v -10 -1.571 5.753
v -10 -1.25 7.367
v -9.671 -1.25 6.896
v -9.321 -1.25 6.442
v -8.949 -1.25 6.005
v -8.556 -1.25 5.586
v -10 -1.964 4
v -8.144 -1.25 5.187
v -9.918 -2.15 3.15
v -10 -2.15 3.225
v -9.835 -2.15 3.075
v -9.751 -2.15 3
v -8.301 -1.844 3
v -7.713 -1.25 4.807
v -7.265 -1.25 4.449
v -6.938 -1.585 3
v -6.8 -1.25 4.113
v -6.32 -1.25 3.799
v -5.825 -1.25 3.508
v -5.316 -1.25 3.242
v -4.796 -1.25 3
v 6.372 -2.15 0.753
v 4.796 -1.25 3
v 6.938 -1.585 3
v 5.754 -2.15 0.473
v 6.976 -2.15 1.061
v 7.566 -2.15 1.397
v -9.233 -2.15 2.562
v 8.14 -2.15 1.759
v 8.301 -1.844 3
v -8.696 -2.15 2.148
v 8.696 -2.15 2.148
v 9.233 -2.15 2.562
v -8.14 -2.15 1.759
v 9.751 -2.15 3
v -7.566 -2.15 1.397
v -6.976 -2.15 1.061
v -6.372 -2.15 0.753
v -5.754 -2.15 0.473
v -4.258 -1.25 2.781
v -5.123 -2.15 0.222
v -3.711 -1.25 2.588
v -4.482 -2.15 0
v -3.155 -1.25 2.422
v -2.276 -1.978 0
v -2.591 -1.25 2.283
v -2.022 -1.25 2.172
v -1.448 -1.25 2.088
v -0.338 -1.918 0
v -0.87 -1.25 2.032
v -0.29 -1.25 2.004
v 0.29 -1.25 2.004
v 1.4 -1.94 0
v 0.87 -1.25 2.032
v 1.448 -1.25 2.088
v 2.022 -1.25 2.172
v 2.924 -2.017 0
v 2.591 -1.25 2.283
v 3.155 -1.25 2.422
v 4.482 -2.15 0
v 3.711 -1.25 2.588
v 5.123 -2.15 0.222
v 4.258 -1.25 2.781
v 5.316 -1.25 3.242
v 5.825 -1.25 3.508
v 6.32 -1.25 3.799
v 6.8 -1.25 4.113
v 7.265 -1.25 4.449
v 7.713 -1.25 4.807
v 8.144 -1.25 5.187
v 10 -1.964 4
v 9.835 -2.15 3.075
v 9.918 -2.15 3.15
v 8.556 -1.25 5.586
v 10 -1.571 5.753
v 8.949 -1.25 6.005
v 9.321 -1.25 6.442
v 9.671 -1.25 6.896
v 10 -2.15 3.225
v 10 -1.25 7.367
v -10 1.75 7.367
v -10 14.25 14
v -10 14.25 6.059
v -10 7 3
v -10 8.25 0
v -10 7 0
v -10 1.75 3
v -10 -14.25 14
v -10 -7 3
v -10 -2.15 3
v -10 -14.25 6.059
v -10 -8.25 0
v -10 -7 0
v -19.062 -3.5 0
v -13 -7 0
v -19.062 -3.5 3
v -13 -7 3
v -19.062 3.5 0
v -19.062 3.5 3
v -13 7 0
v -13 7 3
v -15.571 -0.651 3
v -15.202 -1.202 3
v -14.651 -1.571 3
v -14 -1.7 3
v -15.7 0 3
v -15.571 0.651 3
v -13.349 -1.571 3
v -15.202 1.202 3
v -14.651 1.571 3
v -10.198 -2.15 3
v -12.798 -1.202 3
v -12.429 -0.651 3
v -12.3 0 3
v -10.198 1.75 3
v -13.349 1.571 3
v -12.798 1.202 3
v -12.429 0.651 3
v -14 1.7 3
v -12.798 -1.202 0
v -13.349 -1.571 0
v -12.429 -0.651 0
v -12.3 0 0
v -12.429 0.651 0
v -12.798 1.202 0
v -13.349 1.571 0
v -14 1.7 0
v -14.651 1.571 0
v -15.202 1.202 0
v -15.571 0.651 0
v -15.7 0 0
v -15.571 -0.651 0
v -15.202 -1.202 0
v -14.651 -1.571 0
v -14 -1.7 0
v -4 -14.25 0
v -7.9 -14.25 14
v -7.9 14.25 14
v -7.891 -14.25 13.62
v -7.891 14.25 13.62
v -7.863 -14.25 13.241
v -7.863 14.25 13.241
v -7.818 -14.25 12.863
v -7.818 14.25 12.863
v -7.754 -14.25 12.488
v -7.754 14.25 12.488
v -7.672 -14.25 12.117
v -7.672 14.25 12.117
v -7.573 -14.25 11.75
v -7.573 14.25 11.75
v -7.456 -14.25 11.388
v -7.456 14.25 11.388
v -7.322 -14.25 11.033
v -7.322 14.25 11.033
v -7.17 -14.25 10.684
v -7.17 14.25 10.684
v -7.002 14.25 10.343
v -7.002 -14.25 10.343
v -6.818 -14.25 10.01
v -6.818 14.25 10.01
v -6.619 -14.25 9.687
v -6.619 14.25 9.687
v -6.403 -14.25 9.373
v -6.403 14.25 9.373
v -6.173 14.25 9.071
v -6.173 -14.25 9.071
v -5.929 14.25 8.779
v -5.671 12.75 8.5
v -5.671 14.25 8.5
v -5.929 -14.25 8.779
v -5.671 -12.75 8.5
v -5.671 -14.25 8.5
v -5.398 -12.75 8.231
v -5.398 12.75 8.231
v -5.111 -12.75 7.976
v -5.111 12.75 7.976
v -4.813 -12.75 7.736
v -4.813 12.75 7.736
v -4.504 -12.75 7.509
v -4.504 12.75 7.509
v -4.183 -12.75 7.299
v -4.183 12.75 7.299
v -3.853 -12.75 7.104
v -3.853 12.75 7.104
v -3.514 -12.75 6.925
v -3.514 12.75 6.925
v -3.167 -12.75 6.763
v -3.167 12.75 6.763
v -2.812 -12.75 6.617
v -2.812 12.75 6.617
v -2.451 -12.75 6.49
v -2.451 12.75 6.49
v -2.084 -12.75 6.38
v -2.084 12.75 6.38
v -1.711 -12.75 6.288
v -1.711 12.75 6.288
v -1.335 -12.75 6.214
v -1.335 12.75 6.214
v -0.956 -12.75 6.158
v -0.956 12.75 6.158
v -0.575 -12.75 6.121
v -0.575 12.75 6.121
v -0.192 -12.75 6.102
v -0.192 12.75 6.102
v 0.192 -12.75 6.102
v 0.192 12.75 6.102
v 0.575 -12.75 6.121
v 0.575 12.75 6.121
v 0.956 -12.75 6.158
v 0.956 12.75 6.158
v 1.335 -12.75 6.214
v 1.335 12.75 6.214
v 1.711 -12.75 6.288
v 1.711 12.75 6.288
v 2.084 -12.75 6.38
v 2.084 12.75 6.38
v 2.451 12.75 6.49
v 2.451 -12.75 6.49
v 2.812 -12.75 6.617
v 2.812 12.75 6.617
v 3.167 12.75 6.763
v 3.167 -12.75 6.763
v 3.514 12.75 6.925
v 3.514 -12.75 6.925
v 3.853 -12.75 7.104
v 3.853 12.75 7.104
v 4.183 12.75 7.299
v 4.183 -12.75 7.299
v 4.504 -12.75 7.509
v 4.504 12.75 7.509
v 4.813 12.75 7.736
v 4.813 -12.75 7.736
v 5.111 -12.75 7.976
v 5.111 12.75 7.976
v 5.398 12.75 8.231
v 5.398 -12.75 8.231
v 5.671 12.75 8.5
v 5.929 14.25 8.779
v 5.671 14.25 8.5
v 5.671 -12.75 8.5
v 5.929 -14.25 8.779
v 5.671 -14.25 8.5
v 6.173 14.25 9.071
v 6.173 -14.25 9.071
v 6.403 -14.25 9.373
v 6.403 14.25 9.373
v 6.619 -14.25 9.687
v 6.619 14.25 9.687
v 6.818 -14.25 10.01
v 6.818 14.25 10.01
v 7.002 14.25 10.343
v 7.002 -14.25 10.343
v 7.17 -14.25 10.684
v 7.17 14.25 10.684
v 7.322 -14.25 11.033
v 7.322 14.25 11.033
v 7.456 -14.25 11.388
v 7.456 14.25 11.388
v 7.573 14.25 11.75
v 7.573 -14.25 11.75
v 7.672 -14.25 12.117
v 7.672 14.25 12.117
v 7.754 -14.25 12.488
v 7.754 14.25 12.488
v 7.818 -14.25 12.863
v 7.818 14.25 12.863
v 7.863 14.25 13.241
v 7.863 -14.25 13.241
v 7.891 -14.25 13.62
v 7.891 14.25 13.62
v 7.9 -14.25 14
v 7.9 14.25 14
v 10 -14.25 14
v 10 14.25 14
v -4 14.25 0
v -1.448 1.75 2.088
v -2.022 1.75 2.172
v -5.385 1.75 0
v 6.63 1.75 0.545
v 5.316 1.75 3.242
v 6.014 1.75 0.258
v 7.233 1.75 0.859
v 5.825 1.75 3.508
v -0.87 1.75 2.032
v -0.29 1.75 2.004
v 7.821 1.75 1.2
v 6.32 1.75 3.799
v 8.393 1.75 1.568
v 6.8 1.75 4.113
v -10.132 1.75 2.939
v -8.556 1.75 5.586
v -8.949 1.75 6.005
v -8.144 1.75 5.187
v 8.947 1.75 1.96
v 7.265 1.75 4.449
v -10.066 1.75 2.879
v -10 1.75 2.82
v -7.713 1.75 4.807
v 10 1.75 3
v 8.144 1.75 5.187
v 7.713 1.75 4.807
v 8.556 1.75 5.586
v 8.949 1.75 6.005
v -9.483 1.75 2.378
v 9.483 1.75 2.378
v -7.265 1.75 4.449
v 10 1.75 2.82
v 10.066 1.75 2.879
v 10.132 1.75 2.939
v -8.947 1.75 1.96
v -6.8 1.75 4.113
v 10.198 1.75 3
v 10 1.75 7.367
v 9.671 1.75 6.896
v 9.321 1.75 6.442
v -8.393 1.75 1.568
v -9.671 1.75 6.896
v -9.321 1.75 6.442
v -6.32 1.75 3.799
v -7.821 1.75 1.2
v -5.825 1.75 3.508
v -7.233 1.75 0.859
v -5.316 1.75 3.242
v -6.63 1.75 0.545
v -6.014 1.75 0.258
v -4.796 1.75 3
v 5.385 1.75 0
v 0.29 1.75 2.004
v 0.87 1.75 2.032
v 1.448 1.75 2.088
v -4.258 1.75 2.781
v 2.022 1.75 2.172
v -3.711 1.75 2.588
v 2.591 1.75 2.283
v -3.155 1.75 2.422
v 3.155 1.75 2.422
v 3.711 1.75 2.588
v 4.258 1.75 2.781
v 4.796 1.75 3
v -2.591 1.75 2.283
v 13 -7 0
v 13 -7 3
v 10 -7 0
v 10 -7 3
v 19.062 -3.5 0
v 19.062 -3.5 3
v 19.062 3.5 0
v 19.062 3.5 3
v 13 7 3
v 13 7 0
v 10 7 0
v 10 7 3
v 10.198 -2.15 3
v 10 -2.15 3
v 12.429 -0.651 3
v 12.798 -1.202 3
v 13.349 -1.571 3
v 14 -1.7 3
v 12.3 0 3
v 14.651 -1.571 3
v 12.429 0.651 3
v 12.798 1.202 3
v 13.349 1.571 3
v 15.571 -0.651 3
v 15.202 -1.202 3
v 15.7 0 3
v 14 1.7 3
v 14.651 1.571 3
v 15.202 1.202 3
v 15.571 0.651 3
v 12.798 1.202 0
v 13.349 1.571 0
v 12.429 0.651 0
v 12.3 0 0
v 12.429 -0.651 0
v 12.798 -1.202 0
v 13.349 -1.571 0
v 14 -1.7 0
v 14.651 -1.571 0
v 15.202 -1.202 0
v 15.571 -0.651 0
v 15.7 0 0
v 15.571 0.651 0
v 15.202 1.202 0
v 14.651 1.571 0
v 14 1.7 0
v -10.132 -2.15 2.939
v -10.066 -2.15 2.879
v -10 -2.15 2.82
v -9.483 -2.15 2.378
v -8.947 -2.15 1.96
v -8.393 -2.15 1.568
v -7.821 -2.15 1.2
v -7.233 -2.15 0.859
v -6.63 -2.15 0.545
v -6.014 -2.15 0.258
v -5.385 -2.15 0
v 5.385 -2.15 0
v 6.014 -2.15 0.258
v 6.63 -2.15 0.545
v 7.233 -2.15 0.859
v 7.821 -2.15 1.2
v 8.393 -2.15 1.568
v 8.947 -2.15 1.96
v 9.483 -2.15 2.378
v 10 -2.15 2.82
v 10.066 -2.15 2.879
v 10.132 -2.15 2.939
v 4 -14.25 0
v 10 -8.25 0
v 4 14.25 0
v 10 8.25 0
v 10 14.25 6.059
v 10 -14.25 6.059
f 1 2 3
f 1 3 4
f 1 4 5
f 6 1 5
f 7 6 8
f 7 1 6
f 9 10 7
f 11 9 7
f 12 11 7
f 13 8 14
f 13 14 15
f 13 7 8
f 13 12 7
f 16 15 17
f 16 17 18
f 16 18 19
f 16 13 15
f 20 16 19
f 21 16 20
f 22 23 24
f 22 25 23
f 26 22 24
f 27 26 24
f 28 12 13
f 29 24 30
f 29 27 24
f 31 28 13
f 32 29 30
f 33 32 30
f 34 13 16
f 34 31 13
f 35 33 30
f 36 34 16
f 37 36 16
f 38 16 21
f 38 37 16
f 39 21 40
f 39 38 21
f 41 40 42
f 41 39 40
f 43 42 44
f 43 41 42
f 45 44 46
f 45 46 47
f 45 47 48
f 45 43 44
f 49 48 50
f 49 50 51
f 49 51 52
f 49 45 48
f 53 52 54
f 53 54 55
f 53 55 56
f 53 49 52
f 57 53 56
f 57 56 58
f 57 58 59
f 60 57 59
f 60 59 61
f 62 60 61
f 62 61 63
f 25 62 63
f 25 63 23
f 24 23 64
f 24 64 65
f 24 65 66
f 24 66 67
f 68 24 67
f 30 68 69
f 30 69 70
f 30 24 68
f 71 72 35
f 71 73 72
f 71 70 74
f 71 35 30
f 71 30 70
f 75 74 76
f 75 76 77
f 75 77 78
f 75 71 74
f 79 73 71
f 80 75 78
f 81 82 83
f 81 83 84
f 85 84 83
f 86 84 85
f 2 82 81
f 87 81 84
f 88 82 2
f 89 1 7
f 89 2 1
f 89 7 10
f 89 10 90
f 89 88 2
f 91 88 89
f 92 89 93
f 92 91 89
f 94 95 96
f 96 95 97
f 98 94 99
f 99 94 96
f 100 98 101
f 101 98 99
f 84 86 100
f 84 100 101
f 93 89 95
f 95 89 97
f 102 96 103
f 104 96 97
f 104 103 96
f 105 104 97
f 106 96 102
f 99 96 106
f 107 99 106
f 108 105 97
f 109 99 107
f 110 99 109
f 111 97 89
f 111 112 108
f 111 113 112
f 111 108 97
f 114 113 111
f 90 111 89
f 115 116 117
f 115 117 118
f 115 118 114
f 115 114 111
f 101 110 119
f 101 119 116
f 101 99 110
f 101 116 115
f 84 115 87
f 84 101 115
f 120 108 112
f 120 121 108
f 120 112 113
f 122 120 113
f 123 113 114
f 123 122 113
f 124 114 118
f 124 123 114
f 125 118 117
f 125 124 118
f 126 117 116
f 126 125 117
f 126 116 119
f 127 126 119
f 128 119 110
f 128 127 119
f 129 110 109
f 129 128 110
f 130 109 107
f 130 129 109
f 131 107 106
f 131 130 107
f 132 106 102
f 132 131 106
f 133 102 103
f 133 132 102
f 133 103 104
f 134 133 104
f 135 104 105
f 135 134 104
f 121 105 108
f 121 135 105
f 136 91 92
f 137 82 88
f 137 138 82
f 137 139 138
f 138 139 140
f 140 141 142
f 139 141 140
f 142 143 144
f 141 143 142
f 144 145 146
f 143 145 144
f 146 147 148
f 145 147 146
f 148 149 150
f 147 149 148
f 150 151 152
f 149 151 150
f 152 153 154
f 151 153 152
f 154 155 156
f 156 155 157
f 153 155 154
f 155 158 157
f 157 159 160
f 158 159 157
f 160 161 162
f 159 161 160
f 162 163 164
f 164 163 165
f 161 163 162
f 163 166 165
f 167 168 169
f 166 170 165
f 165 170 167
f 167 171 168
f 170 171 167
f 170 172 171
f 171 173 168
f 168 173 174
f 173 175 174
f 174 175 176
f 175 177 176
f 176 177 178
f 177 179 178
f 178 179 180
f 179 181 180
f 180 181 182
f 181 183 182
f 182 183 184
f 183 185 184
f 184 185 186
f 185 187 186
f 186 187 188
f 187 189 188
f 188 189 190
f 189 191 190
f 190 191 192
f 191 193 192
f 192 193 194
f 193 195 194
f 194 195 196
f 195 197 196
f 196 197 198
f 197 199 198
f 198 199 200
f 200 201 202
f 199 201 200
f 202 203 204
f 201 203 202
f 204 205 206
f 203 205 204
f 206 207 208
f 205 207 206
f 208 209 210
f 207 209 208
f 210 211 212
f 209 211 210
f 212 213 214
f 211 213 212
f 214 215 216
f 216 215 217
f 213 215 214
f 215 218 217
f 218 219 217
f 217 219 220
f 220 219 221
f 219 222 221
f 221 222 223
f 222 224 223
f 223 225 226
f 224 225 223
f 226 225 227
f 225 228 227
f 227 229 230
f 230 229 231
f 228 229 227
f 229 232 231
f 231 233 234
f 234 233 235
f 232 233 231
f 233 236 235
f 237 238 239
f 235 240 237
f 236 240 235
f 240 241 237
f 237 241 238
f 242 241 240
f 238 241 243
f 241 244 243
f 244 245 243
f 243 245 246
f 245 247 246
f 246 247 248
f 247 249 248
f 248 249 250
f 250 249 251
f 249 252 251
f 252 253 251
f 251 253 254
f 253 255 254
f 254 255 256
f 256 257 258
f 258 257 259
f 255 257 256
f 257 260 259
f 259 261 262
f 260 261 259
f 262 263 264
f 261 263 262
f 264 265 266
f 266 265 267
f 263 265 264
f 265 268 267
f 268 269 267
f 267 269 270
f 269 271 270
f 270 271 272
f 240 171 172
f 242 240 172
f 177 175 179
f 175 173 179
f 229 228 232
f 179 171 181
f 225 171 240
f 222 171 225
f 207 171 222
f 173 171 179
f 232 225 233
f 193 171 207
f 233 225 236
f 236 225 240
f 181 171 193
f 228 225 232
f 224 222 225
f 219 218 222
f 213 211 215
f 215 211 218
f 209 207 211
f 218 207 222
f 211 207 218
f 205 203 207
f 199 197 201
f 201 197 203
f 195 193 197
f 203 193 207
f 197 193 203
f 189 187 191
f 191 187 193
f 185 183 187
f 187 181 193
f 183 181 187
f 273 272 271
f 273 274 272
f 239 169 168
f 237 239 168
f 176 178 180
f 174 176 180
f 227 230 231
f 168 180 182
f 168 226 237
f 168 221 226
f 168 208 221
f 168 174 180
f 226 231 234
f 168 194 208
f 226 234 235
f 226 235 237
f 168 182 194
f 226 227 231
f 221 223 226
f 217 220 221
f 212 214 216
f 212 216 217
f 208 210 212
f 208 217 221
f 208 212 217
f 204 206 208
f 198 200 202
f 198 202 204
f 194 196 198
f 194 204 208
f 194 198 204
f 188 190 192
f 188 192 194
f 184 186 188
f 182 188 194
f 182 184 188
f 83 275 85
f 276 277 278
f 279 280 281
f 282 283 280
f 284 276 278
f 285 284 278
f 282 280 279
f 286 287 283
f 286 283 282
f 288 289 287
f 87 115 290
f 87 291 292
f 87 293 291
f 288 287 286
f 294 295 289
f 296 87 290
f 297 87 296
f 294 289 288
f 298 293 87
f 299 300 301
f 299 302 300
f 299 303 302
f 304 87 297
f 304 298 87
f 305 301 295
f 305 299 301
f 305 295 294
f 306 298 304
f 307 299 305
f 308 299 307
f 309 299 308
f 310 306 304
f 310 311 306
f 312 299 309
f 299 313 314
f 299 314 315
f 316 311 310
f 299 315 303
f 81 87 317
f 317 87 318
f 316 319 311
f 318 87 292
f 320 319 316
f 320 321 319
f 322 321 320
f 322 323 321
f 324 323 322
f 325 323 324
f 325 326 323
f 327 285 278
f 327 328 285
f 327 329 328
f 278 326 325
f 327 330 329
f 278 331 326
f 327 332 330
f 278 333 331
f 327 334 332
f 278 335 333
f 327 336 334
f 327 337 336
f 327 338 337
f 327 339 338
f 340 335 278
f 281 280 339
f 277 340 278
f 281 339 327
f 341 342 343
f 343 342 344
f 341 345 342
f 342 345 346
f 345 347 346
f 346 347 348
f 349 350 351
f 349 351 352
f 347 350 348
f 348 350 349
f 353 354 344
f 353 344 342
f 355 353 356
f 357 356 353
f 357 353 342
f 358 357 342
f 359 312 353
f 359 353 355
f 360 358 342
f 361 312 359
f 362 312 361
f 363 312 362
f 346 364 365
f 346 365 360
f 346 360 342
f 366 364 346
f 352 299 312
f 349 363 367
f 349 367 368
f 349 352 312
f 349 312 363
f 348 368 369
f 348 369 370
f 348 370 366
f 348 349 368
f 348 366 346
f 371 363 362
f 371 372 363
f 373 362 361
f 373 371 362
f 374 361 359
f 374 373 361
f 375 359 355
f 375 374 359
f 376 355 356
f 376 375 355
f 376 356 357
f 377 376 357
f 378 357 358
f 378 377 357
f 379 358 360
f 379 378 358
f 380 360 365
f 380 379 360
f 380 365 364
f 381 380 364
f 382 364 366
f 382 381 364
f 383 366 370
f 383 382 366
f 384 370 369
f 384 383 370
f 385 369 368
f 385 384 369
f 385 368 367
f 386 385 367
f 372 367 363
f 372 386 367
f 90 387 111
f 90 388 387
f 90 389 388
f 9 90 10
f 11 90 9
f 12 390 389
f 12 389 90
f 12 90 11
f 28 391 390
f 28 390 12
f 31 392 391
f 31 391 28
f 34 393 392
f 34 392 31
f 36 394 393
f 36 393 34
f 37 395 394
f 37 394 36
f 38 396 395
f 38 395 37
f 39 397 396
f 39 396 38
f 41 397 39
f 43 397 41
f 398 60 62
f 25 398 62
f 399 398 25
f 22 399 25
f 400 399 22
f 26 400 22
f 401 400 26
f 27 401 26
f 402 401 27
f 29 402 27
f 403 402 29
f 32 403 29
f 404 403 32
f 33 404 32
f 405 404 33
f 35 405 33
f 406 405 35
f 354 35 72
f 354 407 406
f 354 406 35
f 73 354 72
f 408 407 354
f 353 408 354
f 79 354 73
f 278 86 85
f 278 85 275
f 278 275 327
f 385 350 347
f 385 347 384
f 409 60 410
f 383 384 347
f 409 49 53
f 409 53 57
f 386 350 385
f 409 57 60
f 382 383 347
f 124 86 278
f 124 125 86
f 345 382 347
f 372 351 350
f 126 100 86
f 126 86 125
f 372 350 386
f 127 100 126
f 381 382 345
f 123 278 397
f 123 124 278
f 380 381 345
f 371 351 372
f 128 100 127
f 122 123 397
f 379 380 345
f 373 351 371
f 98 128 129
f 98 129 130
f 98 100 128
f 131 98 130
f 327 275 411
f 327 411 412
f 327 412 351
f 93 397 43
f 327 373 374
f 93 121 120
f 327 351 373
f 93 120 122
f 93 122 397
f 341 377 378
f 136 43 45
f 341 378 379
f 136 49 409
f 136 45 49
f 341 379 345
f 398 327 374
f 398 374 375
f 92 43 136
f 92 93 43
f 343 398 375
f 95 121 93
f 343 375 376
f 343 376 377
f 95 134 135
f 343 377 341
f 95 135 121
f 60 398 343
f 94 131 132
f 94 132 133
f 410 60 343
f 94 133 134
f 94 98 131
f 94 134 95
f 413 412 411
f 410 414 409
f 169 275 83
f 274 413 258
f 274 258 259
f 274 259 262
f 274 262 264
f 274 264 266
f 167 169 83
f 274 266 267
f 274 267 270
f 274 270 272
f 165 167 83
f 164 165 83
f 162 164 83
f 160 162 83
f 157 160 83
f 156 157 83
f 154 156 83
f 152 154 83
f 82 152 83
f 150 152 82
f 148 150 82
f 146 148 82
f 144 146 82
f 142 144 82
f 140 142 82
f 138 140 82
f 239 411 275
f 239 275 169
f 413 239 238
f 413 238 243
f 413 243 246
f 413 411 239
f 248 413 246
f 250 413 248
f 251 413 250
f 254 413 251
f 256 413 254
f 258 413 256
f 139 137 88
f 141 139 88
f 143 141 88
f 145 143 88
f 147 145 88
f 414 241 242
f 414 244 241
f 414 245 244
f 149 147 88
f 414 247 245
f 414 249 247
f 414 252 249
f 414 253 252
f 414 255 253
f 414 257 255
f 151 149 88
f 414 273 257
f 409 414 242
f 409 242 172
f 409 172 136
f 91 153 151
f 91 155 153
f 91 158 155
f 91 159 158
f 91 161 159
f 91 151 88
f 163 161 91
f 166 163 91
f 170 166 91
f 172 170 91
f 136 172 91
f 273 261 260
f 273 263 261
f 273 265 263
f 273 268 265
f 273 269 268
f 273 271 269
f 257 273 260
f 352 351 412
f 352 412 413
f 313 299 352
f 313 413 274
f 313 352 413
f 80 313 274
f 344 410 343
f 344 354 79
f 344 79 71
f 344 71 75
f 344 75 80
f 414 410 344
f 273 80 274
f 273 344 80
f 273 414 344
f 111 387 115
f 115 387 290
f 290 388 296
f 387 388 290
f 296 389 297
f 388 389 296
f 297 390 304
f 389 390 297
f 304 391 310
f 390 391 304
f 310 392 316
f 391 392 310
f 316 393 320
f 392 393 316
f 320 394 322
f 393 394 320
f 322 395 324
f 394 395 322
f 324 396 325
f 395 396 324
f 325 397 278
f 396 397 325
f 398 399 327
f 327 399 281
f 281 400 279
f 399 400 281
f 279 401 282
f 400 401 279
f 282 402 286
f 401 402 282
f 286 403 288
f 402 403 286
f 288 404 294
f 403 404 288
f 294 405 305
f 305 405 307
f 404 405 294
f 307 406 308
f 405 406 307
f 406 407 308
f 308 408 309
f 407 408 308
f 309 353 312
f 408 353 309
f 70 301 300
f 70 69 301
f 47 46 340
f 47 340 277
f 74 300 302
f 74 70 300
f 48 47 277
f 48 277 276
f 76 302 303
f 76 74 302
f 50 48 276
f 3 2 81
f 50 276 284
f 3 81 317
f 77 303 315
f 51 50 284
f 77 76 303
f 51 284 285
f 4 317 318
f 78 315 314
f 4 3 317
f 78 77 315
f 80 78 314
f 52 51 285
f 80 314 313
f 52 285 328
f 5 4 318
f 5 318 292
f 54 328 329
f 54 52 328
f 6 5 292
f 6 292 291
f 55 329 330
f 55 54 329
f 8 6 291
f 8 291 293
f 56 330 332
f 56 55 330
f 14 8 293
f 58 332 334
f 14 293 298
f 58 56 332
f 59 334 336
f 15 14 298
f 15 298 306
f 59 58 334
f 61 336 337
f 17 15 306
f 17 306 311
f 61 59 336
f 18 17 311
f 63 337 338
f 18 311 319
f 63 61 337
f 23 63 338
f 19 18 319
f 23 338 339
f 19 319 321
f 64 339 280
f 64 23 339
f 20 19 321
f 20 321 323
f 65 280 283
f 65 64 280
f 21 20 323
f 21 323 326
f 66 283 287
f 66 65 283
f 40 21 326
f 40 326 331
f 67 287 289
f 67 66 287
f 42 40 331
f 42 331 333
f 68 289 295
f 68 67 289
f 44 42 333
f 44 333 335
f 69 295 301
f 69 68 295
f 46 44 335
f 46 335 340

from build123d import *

# Parameters (mm, degrees)
CUBE006_W                    = 20
CUBE006_H                    = 10
CUBE006_DEPTH                = 20
CUBE006_ROLL_ANGLE           = 35
CUBE006_PLACEMENT_ANGLE      = -45
CUBE008_W                    = 20
CUBE008_H                    = 10
CUBE008_DEPTH                = 20
CUBE008_ROLL_ANGLE           = 35
CUBE008_PLACEMENT_ANGLE      = -45
CUBE007_W                    = 20
CUBE007_H                    = 10
CUBE007_DEPTH                = 20
CUBE007_ROLL_ANGLE           = 35
CUBE007_PLACEMENT_ANGLE      = 45
CUBE005_W                    = 20
CUBE005_H                    = 10
CUBE005_DEPTH                = 20
CUBE005_ROLL_ANGLE           = 35
CUBE005_PLACEMENT_ANGLE      = 45
CUBE003_W                    = 4.5
CUBE003_H                    = 20
CUBE003_DEPTH                = 1.5
CUBE004_W                    = 4.5
CUBE004_H                    = 20
CUBE004_DEPTH                = 1.5
CYLINDER005_R                = 12
CYLINDER005_DEPTH            = 5
CYLINDER004_R                = 15
CYLINDER004_DEPTH            = 3.9
CUBE002_W                    = 4
CUBE002_H                    = 20
CUBE002_DEPTH                = 28.5
CYLINDER003_R                = 7.9
CYLINDER003_DEPTH            = 32.5
CUBE001_W                    = 10
CUBE001_H                    = 20
CUBE001_DEPTH                = 28.5
MATRIX_UNION_PITCH_ANGLE     = -90
MATRIX_UNION_PLACEMENT_ANGLE = 90
PRISM003_DEPTH               = 10
CYLINDER001_R                = 12
CYLINDER001_DEPTH            = 5
CYLINDER_R                   = 15
CYLINDER_DEPTH               = 3.9
DIFFERENCE_PITCH_ANGLE       = -90
DIFFERENCE_PLACEMENT_ANGLE   = 90
PRISM002_DEPTH               = 10
PRISM_DEPTH                  = 3
PRISM_PLACEMENT_ANGLE        = 30
PRISM001_DEPTH               = 3
PRISM001_PLACEMENT_ANGLE     = 30
CUBE_W                       = 26
CUBE_H                       = 14
CUBE_DEPTH                   = 3


with BuildPart() as cube006:
    # cube006 → cube006 (new body)
    with BuildSketch(Plane.XY):
        with Locations((10, 5)):
            Rectangle(CUBE006_W, CUBE006_H)
    extrude(amount=CUBE006_DEPTH)


with BuildPart() as cube006_1:
    # cube006 roll: moved
    add(cube006.part.rotate(Axis((0, 0, 0), (1, 0, 0)), CUBE006_ROLL_ANGLE))


with BuildPart() as cube006_2:
    # cube006 placement: moved
    add(cube006_1.part.moved(Location((-15.80755, -5.915414, -13.927285))).rotate(Axis((-15.80755, -5.915414, -13.927285), (0, 0, 1)), CUBE006_PLACEMENT_ANGLE))


with BuildPart() as cube008:
    # cube008 → cube008 (new body)
    with BuildSketch(Plane.XY):
        with Locations((10, 5)):
            Rectangle(CUBE008_W, CUBE008_H)
    extrude(amount=CUBE008_DEPTH)


with BuildPart() as cube008_1:
    # cube008 roll: moved
    add(cube008.part.rotate(Axis((0, 0, 0), (1, 0, 0)), CUBE008_ROLL_ANGLE))


with BuildPart() as cube008_2:
    # cube008 placement: moved
    add(cube008_1.part.moved(Location((-15.80755, -5.915414, -13.927285))).rotate(Axis((-15.80755, -5.915414, -13.927285), (0, 0, 1)), CUBE008_PLACEMENT_ANGLE))


with BuildPart() as matrix_union001:
    # cube007 → cube007 (new body)
    with BuildSketch(Plane.XY):
        with Locations((10, 5)):
            Rectangle(CUBE007_W, CUBE007_H)
    extrude(amount=CUBE007_DEPTH)


with BuildPart() as matrix_union001_1:
    # cube007 roll: moved
    add(matrix_union001.part.rotate(Axis((0, 0, 0), (1, 0, 0)), CUBE007_ROLL_ANGLE))


with BuildPart() as matrix_union001_2:
    # cube007 placement: moved
    add(matrix_union001_1.part.moved(Location((1.665414, -20.05755, -13.927285))).rotate(Axis((1.665414, -20.05755, -13.927285), (0, 0, 1)), CUBE007_PLACEMENT_ANGLE))

    # Matrix_Union001: union cube008
    add(cube008_2.part)


with BuildPart() as mirrored_matrix_union001:
    # mirr_Matrix_Union001: instance of Matrix_Union001
    add(matrix_union001_2.part.mirror(Plane(origin=(0, 0, 0), x_dir=(1, 0, 0), z_dir=(0, 1, 0))))


with BuildPart() as union005:
    # cube005 → cube005 (new body)
    with BuildSketch(Plane.XY):
        with Locations((10, 5)):
            Rectangle(CUBE005_W, CUBE005_H)
    extrude(amount=CUBE005_DEPTH)


with BuildPart() as union005_1:
    # cube005 roll: moved
    add(union005.part.rotate(Axis((0, 0, 0), (1, 0, 0)), CUBE005_ROLL_ANGLE))


with BuildPart() as union005_2:
    # cube005 placement: moved
    add(union005_1.part.moved(Location((1.665414, -20.05755, -13.927285))).rotate(Axis((1.665414, -20.05755, -13.927285), (0, 0, 1)), CUBE005_PLACEMENT_ANGLE))

    # union005: union cube006, mirrored Matrix_Union001
    add(cube006_2.part)
    add(mirrored_matrix_union001.part)


with BuildPart() as cube003:
    # cube003 → cube003 (new body)
    with BuildSketch(Plane(origin=(-10, -10, 0), x_dir=(1, 0, 0), z_dir=(0, 0, 1))):
        with Locations((2.25, 10)):
            Rectangle(CUBE003_W, CUBE003_H)
    extrude(amount=CUBE003_DEPTH)


with BuildPart() as cube004:
    # cube004 → cube004 (new body)
    with BuildSketch(Plane(origin=(-10, -10, 27), x_dir=(1, 0, 0), z_dir=(0, 0, 1))):
        with Locations((2.25, 10)):
            Rectangle(CUBE004_W, CUBE004_H)
    extrude(amount=CUBE004_DEPTH)


with BuildPart() as cylinder006:
    # cylinder006 → cylinder006 (revolve)
    with BuildSketch(Plane(origin=(0, 0, 3), x_dir=(1, 0, 0), z_dir=(0, -1, 0))):
        Polygon((0, 0), (12, 0), (15, 1), (0, 1), align=None)
    revolve(axis=Axis((0, 0, 3), (0, 0, 1)))


with BuildPart() as union004:
    # cylinder005 → cylinder005 (new body)
    with BuildSketch(Plane.XY):
        Circle(CYLINDER005_R)
    extrude(amount=CYLINDER005_DEPTH)

    # union004: union cylinder006
    add(cylinder006.part)


with BuildPart() as difference003:
    # cylinder004 → cylinder004 (new body)
    with BuildSketch(Plane.XY):
        Circle(CYLINDER004_R)
    extrude(amount=CYLINDER004_DEPTH)

    # difference003: cut union004
    add(union004.part, mode=Mode.SUBTRACT)


with BuildPart() as difference003_1:
    # difference003 placement: moved
    add(difference003.part.moved(Location((0, 0, 12.5))))


with BuildPart() as cube002:
    # cube002 → cube002 (new body)
    with BuildSketch(Plane(origin=(-14, -10, 0), x_dir=(1, 0, 0), z_dir=(0, 0, 1))):
        with Locations((2, 10)):
            Rectangle(CUBE002_W, CUBE002_H)
    extrude(amount=CUBE002_DEPTH)


with BuildPart() as cylinder003:
    # cylinder003 → cylinder003 (new body)
    with BuildSketch(Plane.XY.offset(-2)):
        Circle(CYLINDER003_R)
    extrude(amount=CYLINDER003_DEPTH)


with BuildPart() as difference005:
    # cube001 → cube001 (new body)
    with BuildSketch(Plane(origin=(-10, -10, 0), x_dir=(1, 0, 0), z_dir=(0, 0, 1))):
        with Locations((5, 10)):
            Rectangle(CUBE001_W, CUBE001_H)
    extrude(amount=CUBE001_DEPTH)

    # difference002: cut cylinder003
    add(cylinder003.part, mode=Mode.SUBTRACT)

    # union003: union cube002
    add(cube002.part)

    # difference004: cut difference003
    add(difference003_1.part, mode=Mode.SUBTRACT)

    # Matrix_Union: union cube003, cube004
    add(cube003.part)
    add(cube004.part)


with BuildPart() as difference005_1:
    # Matrix_Union pitch: moved
    add(difference005.part.rotate(Axis((0, 0, 0), (0, 1, 0)), MATRIX_UNION_PITCH_ANGLE))


with BuildPart() as difference005_2:
    # Matrix_Union placement: moved
    add(difference005_1.part.moved(Location((0, 14.25, 14))).rotate(Axis((0, 14.25, 14), (0, 0, 1)), MATRIX_UNION_PLACEMENT_ANGLE))

    # difference005: cut union005
    add(union005_2.part, mode=Mode.SUBTRACT)


with BuildPart() as prism003:
    # prism003 → prism003 (new body)
    with BuildSketch(Plane(origin=(14, 0, -0.1), x_dir=(1, 0, 0), z_dir=(0, 0, 1))):
        Polygon((1.7, 0), (1.570595, 0.650562), (1.202082, 1.202082), (0.650562, 1.570595), (0, 1.7), (-0.650562, 1.570595), (-1.202082, 1.202082), (-1.570595, 0.650562), (-1.7, 0), (-1.570595, -0.650562), (-1.202082, -1.202082), (-0.650562, -1.570595), (0, -1.7), (0.650562, -1.570595), (1.202082, -1.202082), (1.570595, -0.650562), align=None)
    extrude(amount=PRISM003_DEPTH)


with BuildPart() as cylinder002:
    # cylinder002 → cylinder002 (revolve)
    with BuildSketch(Plane(origin=(0, 0, 3), x_dir=(1, 0, 0), z_dir=(0, -1, 0))):
        Polygon((0, 0), (12, 0), (15, 1), (0, 1), align=None)
    revolve(axis=Axis((0, 0, 3), (0, 0, 1)))


with BuildPart() as union001:
    # cylinder001 → cylinder001 (new body)
    with BuildSketch(Plane.XY):
        Circle(CYLINDER001_R)
    extrude(amount=CYLINDER001_DEPTH)

    # union001: union cylinder002
    add(cylinder002.part)


with BuildPart() as difference:
    # cylinder → cylinder (new body)
    with BuildSketch(Plane.XY):
        Circle(CYLINDER_R)
    extrude(amount=CYLINDER_DEPTH)

    # difference: cut union001
    add(union001.part, mode=Mode.SUBTRACT)


with BuildPart() as difference_1:
    # difference pitch: moved
    add(difference.part.rotate(Axis((0, 0, 0), (0, 1, 0)), DIFFERENCE_PITCH_ANGLE))


with BuildPart() as difference_2:
    # difference placement: moved
    add(difference_1.part.moved(Location((0, 1.75, 14))).rotate(Axis((0, 1.75, 14), (0, 0, 1)), DIFFERENCE_PLACEMENT_ANGLE))


with BuildPart() as union002:
    # prism002 → prism002 (new body)
    with BuildSketch(Plane(origin=(-14, 0, -0.1), x_dir=(1, 0, 0), z_dir=(0, 0, 1))):
        Polygon((1.7, 0), (1.570595, 0.650562), (1.202082, 1.202082), (0.650562, 1.570595), (0, 1.7), (-0.650562, 1.570595), (-1.202082, 1.202082), (-1.570595, 0.650562), (-1.7, 0), (-1.570595, -0.650562), (-1.202082, -1.202082), (-0.650562, -1.570595), (0, -1.7), (0.650562, -1.570595), (1.202082, -1.202082), (1.570595, -0.650562), align=None)
    extrude(amount=PRISM002_DEPTH)

    # union002: union prism003, difference
    add(prism003.part)
    add(difference_2.part)


with BuildPart() as prism:
    # prism → prism (new body)
    with BuildSketch(Plane.XY):
        Polygon((7, 0), (3.5, 6.062178), (-3.5, 6.062178), (-7, 0), (-3.5, -6.062178), (3.5, -6.062178), align=None)
    extrude(amount=PRISM_DEPTH)


with BuildPart() as prism_1:
    # prism placement: moved
    add(prism.part.moved(Location((-13, 0, 0))).rotate(Axis((-13, 0, 0), (0, 0, 1)), PRISM_PLACEMENT_ANGLE))


with BuildPart() as prism001:
    # prism001 → prism001 (new body)
    with BuildSketch(Plane.XY):
        Polygon((7, 0), (3.5, 6.062178), (-3.5, 6.062178), (-7, 0), (-3.5, -6.062178), (3.5, -6.062178), align=None)
    extrude(amount=PRISM001_DEPTH)


with BuildPart() as prism001_1:
    # prism001 placement: moved
    add(prism001.part.moved(Location((13, 0, 0))).rotate(Axis((13, 0, 0), (0, 0, 1)), PRISM001_PLACEMENT_ANGLE))


with BuildPart() as group:
    # cube → cube (new body)
    with BuildSketch(Plane(origin=(-13, -7, 0), x_dir=(1, 0, 0), z_dir=(0, 0, 1))):
        with Locations((13, 7)):
            Rectangle(CUBE_W, CUBE_H)
    extrude(amount=CUBE_DEPTH)

    # union: union prism, prism001
    add(prism_1.part)
    add(prism001_1.part)

    # difference001: cut union002
    add(union002.part, mode=Mode.SUBTRACT)

    # Group: union difference005
    add(difference005_2.part)


solid = group.part
